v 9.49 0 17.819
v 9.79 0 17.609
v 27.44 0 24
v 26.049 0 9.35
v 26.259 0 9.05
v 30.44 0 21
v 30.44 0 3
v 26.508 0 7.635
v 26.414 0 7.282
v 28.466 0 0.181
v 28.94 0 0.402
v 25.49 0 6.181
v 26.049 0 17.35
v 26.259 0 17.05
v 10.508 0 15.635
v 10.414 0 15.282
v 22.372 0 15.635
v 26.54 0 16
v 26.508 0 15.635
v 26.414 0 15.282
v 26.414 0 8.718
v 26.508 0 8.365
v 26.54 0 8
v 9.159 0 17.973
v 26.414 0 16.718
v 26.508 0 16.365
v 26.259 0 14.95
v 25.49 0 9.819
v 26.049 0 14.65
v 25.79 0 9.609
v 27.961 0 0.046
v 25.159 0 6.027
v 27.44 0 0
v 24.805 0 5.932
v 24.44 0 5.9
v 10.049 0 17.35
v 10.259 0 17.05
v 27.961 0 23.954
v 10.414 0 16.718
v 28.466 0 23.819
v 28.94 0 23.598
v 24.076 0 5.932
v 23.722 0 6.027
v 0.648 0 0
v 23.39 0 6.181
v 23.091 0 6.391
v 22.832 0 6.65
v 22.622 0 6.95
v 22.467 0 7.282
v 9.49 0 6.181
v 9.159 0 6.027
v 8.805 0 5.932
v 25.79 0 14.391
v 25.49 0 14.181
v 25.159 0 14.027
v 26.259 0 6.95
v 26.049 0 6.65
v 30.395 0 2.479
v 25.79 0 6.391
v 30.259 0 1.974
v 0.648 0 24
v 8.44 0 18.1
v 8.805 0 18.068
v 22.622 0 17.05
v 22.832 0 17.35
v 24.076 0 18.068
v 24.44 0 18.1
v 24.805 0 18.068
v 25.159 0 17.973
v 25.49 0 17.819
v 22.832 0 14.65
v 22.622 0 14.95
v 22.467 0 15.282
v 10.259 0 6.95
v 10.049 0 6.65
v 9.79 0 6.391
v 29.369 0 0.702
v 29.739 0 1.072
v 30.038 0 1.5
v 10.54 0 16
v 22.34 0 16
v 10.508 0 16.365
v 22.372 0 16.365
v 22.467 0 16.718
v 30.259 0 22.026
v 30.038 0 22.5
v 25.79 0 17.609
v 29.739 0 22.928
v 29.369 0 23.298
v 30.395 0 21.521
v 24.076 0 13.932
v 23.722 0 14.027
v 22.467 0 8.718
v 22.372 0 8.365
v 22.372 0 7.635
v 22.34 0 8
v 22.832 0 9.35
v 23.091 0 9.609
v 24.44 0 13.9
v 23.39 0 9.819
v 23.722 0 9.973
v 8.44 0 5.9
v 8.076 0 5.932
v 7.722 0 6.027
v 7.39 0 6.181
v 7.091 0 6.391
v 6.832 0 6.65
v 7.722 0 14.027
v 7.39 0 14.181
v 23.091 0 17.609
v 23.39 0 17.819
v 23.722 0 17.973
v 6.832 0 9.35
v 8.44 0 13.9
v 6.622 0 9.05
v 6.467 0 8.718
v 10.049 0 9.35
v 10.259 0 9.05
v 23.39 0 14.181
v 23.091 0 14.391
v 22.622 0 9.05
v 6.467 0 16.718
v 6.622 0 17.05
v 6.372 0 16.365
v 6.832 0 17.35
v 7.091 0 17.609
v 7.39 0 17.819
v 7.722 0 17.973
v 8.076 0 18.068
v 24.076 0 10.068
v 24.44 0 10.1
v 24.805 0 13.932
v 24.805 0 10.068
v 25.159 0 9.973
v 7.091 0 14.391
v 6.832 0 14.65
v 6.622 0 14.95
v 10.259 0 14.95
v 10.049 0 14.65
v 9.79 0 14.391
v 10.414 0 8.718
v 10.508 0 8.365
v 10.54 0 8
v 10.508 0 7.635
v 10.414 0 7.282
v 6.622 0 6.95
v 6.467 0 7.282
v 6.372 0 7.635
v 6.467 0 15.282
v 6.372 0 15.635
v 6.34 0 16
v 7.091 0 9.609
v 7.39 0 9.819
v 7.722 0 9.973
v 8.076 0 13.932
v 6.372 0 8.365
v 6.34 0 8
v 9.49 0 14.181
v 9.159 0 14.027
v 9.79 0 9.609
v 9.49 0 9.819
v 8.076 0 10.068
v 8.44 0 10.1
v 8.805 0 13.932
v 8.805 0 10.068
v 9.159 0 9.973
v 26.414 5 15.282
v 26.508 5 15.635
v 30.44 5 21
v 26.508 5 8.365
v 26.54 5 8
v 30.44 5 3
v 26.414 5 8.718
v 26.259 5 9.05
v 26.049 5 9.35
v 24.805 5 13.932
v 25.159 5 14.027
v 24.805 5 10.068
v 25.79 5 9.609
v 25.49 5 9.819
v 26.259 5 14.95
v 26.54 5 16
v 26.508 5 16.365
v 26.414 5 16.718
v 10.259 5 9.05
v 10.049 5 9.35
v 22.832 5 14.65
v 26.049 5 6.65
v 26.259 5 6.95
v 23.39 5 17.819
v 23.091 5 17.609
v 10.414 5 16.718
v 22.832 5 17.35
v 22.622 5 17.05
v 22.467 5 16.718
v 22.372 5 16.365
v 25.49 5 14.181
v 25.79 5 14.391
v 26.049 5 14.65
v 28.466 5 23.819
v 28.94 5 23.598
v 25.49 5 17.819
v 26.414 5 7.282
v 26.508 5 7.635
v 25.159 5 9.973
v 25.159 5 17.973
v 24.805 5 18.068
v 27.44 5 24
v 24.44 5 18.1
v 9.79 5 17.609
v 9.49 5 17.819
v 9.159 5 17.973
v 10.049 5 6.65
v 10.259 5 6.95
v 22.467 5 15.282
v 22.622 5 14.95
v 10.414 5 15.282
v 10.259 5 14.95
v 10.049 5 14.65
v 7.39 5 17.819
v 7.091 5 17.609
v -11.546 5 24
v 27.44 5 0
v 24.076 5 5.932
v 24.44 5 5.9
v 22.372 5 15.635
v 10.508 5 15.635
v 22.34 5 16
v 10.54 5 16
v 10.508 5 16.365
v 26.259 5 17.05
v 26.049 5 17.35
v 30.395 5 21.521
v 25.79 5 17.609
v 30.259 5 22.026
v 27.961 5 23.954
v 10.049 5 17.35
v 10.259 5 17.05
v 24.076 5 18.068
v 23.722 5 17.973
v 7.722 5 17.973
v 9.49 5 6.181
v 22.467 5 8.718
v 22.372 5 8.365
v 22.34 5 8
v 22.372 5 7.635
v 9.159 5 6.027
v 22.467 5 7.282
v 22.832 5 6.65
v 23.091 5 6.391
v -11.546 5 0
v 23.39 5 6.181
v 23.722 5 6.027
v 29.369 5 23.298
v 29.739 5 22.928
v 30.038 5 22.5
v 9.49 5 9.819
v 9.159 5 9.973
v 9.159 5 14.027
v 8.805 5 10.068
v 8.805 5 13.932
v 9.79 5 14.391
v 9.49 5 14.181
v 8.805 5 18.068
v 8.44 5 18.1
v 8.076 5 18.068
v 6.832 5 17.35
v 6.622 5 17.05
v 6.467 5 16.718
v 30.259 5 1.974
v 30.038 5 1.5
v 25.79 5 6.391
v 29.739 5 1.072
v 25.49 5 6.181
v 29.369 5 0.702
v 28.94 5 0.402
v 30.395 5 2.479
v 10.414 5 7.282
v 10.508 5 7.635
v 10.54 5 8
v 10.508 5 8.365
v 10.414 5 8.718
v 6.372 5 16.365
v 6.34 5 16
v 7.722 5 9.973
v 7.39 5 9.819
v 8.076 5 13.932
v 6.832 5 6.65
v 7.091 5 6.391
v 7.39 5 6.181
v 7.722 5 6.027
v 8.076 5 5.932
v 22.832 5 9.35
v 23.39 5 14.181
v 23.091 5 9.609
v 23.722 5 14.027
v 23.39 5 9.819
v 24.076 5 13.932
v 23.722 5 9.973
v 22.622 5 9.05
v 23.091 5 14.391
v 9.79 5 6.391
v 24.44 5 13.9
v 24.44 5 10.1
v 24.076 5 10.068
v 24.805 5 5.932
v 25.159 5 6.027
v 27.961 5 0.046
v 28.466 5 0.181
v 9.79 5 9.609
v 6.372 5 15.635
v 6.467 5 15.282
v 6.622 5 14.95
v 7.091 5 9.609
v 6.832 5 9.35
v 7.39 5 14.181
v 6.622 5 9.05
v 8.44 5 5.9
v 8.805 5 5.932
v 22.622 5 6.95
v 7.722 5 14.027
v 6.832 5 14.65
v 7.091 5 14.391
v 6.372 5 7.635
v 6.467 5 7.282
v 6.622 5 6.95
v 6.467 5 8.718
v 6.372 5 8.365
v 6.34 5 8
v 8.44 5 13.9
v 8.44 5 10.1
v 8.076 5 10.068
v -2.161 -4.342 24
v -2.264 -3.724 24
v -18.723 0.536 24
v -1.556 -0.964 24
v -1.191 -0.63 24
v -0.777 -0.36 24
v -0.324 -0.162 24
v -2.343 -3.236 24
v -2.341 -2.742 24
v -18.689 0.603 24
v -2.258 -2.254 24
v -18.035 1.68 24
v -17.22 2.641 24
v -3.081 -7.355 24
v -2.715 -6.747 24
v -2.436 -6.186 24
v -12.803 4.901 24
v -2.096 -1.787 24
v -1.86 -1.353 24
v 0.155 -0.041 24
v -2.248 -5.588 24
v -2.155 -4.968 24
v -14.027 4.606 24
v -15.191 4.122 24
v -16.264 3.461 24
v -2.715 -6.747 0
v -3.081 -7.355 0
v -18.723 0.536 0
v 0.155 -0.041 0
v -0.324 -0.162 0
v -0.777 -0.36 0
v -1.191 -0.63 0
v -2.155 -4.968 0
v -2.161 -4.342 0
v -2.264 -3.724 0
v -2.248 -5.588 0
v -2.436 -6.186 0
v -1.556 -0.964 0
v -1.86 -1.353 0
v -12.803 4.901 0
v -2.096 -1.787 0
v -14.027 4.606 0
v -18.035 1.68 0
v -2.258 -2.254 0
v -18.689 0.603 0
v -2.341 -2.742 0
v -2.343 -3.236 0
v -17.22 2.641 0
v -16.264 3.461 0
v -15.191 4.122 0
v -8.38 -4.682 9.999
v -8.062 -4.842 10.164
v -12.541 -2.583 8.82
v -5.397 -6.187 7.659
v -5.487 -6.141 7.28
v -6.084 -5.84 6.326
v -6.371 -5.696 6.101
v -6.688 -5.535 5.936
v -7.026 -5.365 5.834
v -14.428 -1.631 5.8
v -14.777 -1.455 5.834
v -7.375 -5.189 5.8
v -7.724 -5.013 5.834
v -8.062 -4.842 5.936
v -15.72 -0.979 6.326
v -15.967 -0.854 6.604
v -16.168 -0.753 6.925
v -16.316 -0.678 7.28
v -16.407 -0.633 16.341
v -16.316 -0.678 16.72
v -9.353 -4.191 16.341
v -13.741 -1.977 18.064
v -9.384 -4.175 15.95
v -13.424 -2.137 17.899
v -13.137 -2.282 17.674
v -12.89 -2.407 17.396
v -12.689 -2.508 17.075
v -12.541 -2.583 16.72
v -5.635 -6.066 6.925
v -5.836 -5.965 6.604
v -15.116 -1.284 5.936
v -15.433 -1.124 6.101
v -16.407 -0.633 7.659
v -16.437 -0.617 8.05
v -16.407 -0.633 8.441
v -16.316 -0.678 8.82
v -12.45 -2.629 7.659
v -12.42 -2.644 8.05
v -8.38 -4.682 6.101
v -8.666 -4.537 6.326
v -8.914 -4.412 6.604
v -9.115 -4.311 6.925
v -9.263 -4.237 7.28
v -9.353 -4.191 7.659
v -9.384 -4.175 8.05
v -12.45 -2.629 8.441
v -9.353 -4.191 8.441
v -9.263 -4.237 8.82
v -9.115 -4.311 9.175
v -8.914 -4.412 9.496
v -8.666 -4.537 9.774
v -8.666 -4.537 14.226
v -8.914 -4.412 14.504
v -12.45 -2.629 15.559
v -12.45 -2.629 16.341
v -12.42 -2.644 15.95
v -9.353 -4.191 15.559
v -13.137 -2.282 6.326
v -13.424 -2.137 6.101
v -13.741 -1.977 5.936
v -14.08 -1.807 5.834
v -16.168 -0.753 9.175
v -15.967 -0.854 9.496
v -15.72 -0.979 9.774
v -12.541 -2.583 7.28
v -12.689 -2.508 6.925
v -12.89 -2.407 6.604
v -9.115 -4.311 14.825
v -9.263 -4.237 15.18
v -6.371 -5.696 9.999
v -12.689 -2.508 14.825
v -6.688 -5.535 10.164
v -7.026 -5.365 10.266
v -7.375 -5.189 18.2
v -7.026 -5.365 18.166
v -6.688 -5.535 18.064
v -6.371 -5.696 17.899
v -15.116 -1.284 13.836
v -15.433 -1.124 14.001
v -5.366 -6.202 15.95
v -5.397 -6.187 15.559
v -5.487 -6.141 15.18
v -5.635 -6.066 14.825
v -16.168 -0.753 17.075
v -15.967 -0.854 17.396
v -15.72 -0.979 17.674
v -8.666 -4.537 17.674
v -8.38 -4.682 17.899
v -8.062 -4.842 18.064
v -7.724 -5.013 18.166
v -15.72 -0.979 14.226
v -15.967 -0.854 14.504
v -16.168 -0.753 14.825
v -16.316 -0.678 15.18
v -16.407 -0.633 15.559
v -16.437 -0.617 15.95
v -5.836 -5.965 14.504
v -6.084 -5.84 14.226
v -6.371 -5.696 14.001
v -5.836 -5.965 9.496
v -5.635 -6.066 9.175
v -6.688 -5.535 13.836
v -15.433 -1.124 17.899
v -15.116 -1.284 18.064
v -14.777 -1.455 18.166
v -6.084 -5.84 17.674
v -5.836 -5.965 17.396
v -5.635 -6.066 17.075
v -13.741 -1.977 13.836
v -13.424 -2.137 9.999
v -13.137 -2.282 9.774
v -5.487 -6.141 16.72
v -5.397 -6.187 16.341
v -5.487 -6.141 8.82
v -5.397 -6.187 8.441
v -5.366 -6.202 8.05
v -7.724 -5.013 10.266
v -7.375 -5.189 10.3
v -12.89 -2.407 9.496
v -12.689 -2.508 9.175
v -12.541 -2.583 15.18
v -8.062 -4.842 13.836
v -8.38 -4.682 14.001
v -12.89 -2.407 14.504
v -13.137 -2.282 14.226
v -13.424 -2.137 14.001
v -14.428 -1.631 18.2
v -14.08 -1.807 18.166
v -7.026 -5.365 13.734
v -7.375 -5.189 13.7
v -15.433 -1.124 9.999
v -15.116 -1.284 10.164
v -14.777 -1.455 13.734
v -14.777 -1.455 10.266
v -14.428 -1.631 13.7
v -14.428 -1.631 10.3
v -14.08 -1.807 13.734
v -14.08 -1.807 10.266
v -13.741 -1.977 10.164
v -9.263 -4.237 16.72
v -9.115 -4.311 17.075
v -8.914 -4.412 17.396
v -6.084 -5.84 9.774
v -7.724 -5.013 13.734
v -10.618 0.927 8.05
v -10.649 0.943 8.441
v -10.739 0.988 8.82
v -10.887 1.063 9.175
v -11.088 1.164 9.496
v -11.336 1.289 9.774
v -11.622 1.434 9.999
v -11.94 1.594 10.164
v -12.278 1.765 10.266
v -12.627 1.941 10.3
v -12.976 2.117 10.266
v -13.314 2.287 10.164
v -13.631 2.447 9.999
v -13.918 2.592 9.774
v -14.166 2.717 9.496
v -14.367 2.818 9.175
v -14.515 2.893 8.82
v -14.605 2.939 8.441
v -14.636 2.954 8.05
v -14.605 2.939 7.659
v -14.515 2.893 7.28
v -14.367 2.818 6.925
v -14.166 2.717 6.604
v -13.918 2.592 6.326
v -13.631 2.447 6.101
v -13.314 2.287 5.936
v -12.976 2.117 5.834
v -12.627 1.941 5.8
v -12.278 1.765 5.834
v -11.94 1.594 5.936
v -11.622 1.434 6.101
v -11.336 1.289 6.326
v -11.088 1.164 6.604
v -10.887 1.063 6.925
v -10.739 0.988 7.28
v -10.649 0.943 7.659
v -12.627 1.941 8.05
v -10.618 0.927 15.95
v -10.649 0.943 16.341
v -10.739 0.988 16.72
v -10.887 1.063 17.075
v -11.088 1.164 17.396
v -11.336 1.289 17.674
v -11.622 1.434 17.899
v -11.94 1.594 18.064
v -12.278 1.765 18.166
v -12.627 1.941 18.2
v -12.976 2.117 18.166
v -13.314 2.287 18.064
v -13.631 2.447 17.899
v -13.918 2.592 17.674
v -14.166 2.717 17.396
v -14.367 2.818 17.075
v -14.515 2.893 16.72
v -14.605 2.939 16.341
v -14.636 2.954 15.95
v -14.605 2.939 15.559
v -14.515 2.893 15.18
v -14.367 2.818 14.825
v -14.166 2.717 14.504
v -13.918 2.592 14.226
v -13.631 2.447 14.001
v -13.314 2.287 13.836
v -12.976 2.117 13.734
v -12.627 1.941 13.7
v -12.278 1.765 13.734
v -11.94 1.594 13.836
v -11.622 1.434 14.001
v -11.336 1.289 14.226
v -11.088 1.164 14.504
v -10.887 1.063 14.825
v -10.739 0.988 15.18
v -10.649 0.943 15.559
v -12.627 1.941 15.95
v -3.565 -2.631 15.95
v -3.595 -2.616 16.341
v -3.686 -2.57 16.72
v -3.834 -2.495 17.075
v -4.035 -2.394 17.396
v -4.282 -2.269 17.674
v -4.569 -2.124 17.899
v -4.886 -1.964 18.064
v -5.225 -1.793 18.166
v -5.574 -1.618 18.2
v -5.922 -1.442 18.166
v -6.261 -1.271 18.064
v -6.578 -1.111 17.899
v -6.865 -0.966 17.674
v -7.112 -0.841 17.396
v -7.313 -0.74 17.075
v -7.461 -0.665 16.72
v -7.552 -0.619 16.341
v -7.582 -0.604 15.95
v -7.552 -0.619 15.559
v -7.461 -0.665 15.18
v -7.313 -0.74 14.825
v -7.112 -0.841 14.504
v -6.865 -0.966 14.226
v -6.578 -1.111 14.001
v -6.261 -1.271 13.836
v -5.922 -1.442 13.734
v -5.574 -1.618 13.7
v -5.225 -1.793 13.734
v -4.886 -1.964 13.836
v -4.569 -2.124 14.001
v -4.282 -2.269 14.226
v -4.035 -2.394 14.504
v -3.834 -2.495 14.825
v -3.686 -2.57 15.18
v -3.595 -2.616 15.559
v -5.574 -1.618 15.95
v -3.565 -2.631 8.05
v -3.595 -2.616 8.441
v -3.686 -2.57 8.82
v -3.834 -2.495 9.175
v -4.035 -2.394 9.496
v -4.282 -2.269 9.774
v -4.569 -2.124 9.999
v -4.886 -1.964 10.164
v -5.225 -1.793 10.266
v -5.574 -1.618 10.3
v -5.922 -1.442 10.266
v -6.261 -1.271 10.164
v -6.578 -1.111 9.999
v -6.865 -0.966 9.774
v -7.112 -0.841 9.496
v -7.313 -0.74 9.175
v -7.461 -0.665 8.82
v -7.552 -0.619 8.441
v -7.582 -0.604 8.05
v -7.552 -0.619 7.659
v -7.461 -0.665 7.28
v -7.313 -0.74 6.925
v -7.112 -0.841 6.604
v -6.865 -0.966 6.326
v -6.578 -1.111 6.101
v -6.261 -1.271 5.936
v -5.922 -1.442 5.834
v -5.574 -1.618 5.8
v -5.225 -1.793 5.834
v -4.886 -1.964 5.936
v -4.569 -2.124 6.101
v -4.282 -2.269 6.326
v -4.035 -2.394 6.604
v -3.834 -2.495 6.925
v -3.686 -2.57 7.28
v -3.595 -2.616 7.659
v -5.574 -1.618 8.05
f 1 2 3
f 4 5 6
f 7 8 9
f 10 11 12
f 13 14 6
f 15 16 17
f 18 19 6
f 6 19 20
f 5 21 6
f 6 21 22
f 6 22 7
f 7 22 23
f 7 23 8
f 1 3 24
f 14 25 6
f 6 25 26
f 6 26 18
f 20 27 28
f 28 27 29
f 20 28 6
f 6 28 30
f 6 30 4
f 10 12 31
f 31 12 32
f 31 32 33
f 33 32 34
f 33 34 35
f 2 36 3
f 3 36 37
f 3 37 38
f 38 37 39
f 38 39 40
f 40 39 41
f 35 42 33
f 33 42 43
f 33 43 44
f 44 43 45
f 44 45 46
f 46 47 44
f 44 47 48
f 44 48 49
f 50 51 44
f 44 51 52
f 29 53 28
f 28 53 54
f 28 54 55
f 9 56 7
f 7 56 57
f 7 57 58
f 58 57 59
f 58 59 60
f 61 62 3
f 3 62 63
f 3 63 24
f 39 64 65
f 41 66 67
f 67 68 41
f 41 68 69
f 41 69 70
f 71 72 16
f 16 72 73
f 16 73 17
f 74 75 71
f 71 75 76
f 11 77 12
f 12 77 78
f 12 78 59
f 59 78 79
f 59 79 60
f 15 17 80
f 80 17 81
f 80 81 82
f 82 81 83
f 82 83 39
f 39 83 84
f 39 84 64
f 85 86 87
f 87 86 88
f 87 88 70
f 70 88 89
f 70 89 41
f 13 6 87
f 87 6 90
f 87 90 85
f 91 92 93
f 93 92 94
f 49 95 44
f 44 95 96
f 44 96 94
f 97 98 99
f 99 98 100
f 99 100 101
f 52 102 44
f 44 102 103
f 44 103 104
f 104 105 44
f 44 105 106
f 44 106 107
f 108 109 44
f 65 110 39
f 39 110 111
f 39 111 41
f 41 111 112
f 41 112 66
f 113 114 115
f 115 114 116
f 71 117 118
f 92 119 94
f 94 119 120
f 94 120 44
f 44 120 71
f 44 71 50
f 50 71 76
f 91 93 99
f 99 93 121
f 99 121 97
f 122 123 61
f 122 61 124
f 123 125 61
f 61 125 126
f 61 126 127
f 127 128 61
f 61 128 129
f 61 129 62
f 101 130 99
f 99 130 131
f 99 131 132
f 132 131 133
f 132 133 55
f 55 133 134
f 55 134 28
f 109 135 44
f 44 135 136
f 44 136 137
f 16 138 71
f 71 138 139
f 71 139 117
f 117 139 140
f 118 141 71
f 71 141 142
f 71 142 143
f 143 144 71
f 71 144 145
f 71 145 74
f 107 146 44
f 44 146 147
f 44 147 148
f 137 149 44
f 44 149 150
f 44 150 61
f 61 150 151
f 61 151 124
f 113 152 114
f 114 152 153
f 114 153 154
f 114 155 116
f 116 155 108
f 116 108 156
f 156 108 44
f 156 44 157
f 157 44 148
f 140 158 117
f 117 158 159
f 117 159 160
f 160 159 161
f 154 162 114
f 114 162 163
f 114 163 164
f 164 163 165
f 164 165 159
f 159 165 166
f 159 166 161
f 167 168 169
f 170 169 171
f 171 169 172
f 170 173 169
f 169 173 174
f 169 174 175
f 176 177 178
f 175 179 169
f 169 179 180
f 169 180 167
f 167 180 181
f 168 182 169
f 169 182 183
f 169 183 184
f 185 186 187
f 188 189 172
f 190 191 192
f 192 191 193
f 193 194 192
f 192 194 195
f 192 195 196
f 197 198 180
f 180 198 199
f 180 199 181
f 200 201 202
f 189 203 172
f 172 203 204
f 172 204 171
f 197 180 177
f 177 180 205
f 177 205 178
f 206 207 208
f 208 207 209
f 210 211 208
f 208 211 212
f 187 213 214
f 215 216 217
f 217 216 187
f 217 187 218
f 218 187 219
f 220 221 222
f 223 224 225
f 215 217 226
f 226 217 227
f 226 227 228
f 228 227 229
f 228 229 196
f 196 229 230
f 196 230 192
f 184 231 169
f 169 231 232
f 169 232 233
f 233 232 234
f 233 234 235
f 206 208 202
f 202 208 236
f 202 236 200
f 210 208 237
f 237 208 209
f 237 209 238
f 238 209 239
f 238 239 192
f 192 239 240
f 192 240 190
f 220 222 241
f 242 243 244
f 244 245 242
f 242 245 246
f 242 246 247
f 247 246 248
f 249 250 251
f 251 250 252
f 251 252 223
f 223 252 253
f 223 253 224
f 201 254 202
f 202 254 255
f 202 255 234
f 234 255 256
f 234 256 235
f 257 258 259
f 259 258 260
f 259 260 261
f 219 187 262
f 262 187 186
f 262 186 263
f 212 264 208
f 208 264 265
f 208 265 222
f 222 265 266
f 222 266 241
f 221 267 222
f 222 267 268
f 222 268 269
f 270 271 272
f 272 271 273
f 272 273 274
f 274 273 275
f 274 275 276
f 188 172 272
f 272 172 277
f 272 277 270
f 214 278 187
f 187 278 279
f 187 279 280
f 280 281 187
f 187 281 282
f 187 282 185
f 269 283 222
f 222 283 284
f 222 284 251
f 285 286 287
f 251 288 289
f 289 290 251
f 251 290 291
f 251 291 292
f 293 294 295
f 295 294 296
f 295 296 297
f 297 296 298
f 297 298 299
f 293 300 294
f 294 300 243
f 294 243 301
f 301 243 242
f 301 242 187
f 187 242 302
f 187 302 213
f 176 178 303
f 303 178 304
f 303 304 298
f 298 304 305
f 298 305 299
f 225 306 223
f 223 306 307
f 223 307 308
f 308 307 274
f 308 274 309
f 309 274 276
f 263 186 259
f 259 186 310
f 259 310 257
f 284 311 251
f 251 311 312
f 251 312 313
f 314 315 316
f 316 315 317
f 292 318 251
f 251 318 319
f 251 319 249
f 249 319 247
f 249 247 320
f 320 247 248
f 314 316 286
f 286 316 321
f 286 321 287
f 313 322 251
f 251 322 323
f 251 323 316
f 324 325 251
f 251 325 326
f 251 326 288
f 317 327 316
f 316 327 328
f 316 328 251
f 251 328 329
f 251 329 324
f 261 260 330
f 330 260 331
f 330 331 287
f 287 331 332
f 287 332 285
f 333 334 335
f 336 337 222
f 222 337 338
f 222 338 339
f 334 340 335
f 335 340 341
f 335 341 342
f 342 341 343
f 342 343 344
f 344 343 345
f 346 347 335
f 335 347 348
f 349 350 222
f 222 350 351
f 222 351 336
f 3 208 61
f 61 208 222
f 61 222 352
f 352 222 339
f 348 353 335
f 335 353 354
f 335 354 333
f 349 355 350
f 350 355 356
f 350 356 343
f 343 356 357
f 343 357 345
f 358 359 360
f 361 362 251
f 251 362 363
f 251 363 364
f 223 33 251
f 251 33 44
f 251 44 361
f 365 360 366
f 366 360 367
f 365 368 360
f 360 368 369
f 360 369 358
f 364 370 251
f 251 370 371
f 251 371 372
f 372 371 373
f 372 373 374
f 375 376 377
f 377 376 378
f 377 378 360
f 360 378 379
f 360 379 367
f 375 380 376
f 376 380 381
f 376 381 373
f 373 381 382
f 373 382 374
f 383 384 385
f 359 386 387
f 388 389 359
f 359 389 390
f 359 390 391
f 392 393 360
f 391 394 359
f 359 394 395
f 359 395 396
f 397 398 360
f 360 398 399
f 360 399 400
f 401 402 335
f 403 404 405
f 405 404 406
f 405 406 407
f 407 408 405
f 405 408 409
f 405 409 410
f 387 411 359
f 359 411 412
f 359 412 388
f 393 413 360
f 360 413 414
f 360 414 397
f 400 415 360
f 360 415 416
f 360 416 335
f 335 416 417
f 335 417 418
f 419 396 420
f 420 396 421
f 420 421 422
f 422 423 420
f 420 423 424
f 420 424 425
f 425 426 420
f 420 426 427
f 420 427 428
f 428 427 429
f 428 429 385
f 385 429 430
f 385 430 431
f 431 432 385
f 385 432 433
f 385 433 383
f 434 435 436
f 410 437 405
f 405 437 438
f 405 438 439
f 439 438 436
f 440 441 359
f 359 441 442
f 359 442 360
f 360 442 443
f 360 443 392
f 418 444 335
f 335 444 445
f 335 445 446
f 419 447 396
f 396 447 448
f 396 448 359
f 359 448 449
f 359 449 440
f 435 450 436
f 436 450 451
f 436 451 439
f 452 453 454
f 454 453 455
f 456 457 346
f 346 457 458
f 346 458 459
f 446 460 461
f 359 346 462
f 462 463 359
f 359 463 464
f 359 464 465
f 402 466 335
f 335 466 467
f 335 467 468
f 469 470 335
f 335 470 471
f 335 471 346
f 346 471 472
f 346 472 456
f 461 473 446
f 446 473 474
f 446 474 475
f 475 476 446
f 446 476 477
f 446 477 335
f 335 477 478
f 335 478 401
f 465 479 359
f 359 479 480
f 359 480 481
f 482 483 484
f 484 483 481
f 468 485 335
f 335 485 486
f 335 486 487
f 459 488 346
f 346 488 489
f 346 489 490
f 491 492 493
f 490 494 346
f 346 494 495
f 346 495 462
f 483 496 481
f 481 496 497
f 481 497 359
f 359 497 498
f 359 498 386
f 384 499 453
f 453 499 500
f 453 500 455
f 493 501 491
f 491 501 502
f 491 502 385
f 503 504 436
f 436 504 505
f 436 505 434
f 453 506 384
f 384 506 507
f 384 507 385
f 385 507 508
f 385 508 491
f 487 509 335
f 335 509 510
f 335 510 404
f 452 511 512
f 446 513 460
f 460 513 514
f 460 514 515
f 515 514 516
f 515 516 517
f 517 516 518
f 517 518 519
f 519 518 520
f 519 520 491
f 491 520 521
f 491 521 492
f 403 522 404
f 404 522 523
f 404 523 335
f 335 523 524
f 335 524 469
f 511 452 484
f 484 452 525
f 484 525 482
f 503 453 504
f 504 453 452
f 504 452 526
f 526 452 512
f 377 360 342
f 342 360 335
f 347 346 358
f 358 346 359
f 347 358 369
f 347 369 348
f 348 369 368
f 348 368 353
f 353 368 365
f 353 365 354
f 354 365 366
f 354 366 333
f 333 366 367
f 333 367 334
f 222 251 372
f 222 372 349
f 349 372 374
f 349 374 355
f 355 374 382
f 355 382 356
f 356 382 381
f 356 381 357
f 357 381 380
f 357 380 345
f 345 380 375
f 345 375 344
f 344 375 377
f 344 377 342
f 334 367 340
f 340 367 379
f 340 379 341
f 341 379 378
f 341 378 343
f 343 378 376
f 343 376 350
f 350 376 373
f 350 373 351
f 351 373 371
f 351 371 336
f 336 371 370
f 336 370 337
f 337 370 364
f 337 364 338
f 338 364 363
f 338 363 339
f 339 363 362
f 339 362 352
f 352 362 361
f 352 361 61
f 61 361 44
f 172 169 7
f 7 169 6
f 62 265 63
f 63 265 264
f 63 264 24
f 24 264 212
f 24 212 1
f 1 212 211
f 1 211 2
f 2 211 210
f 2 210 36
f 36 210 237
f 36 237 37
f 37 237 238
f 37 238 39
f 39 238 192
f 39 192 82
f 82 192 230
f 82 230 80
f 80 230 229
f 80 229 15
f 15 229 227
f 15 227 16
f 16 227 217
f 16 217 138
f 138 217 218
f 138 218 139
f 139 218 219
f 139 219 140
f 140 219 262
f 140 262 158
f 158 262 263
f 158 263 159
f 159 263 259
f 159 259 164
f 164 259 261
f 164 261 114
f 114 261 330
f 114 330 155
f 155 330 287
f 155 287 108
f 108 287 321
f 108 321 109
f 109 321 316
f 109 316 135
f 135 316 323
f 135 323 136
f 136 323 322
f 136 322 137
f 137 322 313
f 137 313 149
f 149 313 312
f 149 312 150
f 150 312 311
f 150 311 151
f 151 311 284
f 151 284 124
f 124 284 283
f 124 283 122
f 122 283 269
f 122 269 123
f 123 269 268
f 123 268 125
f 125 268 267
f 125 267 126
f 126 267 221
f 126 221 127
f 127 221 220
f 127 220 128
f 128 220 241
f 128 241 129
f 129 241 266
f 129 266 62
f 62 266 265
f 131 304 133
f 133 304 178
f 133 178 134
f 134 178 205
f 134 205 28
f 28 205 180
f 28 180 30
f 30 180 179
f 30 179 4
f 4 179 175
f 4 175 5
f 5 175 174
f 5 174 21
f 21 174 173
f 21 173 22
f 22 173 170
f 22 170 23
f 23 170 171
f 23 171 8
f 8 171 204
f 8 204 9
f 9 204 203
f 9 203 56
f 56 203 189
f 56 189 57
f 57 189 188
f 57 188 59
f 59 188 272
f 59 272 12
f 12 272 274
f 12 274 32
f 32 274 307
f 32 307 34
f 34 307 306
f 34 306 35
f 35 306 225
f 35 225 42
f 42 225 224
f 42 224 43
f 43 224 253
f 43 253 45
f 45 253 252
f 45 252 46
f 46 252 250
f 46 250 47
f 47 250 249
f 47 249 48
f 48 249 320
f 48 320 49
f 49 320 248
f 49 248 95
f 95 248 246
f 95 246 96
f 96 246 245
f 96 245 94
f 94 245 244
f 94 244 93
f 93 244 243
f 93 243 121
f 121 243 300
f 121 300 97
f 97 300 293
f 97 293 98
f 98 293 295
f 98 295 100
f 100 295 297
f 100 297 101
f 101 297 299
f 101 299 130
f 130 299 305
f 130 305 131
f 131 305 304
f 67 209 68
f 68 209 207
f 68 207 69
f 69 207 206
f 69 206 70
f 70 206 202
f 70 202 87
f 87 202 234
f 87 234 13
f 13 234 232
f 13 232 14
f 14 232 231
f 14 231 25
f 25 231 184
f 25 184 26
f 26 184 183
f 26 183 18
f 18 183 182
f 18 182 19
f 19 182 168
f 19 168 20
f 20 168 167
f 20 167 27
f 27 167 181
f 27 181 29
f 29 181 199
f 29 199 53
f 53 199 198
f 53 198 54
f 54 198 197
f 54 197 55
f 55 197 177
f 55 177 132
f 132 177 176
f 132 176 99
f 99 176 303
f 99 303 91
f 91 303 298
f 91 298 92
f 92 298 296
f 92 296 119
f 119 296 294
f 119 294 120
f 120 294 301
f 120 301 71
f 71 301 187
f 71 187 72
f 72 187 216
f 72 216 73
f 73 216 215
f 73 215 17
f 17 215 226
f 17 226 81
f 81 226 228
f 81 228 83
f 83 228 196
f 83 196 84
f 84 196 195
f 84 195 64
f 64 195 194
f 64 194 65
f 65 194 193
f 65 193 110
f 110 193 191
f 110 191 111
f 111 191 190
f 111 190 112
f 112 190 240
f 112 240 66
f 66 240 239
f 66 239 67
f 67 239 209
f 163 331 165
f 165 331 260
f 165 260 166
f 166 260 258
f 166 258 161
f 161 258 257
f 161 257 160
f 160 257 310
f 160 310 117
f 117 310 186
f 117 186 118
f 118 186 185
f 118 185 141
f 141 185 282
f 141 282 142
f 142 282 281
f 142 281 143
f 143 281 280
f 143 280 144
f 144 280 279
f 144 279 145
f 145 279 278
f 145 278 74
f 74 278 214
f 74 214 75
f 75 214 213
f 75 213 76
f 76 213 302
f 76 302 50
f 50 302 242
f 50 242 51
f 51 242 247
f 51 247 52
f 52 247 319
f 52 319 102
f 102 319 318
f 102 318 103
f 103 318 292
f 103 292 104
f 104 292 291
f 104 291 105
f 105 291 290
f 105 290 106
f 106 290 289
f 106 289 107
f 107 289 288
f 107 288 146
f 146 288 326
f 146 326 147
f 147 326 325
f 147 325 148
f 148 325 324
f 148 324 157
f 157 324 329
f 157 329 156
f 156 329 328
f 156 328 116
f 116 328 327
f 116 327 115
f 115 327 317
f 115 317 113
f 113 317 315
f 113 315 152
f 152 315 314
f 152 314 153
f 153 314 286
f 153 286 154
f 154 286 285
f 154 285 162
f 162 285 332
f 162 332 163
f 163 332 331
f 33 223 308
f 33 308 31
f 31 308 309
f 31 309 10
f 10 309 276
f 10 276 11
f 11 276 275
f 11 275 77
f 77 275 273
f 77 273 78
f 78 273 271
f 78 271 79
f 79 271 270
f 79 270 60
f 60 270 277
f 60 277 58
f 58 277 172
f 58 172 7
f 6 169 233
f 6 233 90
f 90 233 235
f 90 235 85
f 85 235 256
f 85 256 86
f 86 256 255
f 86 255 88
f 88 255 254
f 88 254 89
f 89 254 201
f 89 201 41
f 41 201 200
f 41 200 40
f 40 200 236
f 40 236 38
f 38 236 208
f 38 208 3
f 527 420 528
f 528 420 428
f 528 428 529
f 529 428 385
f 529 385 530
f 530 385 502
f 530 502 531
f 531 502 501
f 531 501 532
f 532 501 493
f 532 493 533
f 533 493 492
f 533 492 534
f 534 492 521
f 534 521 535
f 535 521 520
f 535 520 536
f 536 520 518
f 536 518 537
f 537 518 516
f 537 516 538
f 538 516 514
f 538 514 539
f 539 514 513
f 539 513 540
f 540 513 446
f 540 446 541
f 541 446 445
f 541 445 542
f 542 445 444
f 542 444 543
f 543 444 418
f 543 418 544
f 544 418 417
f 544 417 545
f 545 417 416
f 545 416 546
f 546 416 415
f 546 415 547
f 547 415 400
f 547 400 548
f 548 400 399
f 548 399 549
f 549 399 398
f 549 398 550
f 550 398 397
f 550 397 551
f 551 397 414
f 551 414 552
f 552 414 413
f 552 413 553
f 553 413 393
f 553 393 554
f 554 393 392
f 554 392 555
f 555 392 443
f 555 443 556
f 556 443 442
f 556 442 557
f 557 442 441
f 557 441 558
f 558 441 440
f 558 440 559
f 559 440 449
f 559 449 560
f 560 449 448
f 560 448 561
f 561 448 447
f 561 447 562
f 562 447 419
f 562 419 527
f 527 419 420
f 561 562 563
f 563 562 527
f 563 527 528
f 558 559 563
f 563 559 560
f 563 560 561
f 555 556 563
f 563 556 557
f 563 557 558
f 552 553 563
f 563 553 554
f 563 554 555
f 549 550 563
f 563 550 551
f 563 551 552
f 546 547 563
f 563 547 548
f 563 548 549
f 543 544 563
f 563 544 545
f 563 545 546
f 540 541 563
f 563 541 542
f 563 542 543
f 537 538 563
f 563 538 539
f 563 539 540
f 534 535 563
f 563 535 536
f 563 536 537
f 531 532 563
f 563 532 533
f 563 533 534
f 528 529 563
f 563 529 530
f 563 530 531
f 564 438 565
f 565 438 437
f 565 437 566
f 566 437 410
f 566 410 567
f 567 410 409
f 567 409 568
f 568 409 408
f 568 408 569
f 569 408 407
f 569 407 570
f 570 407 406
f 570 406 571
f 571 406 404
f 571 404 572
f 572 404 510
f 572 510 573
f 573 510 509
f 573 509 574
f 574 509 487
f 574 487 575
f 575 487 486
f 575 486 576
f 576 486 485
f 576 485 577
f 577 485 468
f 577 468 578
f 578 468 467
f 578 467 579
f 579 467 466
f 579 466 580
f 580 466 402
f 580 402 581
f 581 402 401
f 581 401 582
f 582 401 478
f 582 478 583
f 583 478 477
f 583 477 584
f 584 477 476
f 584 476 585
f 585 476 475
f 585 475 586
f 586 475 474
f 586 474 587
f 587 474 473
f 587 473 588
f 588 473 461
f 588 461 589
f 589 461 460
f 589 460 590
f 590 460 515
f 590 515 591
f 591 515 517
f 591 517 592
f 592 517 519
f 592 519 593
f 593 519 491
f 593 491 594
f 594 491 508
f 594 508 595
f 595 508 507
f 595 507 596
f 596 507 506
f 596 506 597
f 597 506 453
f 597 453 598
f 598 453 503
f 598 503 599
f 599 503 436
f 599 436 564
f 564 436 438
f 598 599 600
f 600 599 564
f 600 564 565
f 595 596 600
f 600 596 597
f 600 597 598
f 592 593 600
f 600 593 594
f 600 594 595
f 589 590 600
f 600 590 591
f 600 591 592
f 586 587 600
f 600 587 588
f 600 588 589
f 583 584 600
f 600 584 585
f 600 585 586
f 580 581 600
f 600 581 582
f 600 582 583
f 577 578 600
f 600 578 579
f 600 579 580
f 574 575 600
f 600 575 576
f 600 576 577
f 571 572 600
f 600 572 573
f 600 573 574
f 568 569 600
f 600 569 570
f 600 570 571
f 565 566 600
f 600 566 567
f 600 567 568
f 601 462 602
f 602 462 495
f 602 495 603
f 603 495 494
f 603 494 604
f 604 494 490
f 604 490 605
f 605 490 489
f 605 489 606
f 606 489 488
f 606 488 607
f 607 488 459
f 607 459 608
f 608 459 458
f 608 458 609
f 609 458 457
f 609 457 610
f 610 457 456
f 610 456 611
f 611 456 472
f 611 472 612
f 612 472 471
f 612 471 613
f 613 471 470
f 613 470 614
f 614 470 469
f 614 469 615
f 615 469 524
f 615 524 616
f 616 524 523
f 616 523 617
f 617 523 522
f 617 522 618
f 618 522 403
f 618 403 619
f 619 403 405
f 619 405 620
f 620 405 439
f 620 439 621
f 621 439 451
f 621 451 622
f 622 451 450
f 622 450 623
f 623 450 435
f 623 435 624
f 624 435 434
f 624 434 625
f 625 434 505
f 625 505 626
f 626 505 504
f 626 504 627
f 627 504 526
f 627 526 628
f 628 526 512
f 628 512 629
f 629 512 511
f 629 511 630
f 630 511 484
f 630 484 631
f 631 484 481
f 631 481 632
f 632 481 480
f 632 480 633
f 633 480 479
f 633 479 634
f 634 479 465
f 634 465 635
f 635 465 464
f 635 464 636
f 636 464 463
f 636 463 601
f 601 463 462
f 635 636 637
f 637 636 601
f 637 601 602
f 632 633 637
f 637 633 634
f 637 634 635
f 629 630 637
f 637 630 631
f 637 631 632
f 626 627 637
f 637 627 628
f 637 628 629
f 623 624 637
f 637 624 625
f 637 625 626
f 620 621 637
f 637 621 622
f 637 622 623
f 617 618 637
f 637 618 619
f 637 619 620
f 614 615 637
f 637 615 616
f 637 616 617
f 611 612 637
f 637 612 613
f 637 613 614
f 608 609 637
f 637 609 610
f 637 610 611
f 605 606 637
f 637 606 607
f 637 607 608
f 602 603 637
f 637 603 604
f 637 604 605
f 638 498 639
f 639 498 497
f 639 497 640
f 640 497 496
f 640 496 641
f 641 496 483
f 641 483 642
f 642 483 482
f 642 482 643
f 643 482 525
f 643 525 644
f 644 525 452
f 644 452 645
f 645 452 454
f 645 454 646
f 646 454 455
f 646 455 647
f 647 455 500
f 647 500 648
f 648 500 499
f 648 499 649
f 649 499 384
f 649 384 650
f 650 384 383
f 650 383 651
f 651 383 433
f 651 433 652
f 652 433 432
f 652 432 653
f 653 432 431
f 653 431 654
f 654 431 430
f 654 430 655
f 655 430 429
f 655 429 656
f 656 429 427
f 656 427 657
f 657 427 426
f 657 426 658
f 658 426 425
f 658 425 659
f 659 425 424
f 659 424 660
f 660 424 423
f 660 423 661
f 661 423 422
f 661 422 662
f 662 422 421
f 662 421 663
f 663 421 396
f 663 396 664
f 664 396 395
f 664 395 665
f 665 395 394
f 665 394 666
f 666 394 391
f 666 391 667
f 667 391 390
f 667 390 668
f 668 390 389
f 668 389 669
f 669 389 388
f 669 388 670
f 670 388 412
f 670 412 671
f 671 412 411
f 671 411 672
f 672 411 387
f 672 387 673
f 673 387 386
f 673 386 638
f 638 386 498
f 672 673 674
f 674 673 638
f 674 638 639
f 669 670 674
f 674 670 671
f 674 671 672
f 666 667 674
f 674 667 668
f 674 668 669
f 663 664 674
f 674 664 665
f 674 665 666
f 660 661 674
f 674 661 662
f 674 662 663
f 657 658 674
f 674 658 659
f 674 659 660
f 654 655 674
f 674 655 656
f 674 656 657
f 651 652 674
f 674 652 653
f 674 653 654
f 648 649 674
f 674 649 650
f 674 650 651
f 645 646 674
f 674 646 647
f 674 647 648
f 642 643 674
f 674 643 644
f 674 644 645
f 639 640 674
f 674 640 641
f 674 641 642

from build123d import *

# Parameters (mm, degrees)
ESQUISSE1_W             = 17
ESQUISSE1_H             = 5
BOSS_EXTRU_1_DEPTH      = 24
BOSS_EXTRU_2_DEPTH      = 24
CONG_1_R                = 4
CONG_2_R                = 8
CONG_3_R                = 3
ESQUISSE3_W             = 24
ESQUISSE3_H             = 5
BOSS_EXTRU_3_DEPTH      = 20
ESQUISSE4_R             = 2.1
ENL_V_MAT_EXTRU_1_DEPTH = 10
CONG_4_R                = 3
ESQUISSE5_R             = 2.25
ENL_V_MAT_EXTRU_2_DEPTH = 4


with BuildPart() as part:
    # Esquisse1 → Boss.-Extru.1 (new body)
    with BuildSketch(Plane.XY):
        with Locations((1.940369129, 2.5)):
            Rectangle(ESQUISSE1_W, ESQUISSE1_H)
    extrude(amount=BOSS_EXTRU_1_DEPTH)

    # Esquisse2 → Boss.-Extru.2 (add)
    with BuildSketch(Plane.XY.offset(24)):
        Polygon((-18.723069156, 0.535871193), (-3.080508445, -7.355303518), (-0.501566554, -3.056100904), (-16.471058056, 5), align=None)
        Polygon((-6.559630871, 0), (-6.559630871, 5), (-16.471058056, 5), align=None)
    extrude(amount=-BOSS_EXTRU_2_DEPTH)

    # Congé1
    cong_1_edges = [part.edges().sort_by_distance(p)[0] for p in [
        (-0.501566554, -3.056100904, 12),
    ]]
    fillet(cong_1_edges, radius=CONG_1_R)

    # Congé2
    cong_2_edges = [part.edges().sort_by_distance(p)[0] for p in [
        (-16.471058056, 5, 12),
    ]]
    fillet(cong_2_edges, radius=CONG_2_R)

    # Congé3
    cong_3_edges = [part.edges().sort_by_distance(p)[0] for p in [
        (-6.559630871, 0, 12),
    ]]
    fillet(cong_3_edges, radius=CONG_3_R)

    # Esquisse3 → Boss.-Extru.3 (add)
    with BuildSketch(Plane(origin=(10.440369129, 0, 0), x_dir=(0, 0, -1), z_dir=(1, 0, 0))):
        with Locations((-12, 2.5)):
            Rectangle(ESQUISSE3_W, ESQUISSE3_H)
    extrude(amount=BOSS_EXTRU_3_DEPTH)

    # Esquisse4 → Enlèv. mat.-Extru.1 (cut)
    with BuildSketch(Plane(origin=(0, 5, 0), x_dir=(1, 0, 0), z_dir=(0, 1, 0))):
        with Locations((8.440369129, -8)):
            Circle(ESQUISSE4_R)
        with Locations((24.440369129, -8)):
            Circle(ESQUISSE4_R)
        with Locations((8.440369129, -16)):
            Circle(ESQUISSE4_R)
        with Locations((24.440369129, -16)):
            Circle(ESQUISSE4_R)
    extrude(amount=-ENL_V_MAT_EXTRU_1_DEPTH, mode=Mode.SUBTRACT)

    # Congé4
    cong_4_edges = [part.edges().sort_by_distance(p)[0] for p in [
        (30.440369129, 2.5, 0),
        (30.440369129, 2.5, 24),
    ]]
    fillet(cong_4_edges, radius=CONG_4_R)

    # Esquisse5 → Enlèv. mat.-Extru.2 (cut)
    with BuildSketch(Plane(origin=(-3.582711985, -7.101957793, 0), x_dir=(0.892825761, -0.45040222, 0), z_dir=(-0.45040222, -0.892825761, 0))):
        with Locations((-12.147654158, 8.05)):
            Circle(ESQUISSE5_R)
        with Locations((-12.147654158, 15.95)):
            Circle(ESQUISSE5_R)
        with Locations((-4.247654158, 15.95)):
            Circle(ESQUISSE5_R)
        with Locations((-4.247654158, 8.05)):
            Circle(ESQUISSE5_R)
    extrude(amount=-ENL_V_MAT_EXTRU_2_DEPTH, mode=Mode.SUBTRACT)


solid = part.part
